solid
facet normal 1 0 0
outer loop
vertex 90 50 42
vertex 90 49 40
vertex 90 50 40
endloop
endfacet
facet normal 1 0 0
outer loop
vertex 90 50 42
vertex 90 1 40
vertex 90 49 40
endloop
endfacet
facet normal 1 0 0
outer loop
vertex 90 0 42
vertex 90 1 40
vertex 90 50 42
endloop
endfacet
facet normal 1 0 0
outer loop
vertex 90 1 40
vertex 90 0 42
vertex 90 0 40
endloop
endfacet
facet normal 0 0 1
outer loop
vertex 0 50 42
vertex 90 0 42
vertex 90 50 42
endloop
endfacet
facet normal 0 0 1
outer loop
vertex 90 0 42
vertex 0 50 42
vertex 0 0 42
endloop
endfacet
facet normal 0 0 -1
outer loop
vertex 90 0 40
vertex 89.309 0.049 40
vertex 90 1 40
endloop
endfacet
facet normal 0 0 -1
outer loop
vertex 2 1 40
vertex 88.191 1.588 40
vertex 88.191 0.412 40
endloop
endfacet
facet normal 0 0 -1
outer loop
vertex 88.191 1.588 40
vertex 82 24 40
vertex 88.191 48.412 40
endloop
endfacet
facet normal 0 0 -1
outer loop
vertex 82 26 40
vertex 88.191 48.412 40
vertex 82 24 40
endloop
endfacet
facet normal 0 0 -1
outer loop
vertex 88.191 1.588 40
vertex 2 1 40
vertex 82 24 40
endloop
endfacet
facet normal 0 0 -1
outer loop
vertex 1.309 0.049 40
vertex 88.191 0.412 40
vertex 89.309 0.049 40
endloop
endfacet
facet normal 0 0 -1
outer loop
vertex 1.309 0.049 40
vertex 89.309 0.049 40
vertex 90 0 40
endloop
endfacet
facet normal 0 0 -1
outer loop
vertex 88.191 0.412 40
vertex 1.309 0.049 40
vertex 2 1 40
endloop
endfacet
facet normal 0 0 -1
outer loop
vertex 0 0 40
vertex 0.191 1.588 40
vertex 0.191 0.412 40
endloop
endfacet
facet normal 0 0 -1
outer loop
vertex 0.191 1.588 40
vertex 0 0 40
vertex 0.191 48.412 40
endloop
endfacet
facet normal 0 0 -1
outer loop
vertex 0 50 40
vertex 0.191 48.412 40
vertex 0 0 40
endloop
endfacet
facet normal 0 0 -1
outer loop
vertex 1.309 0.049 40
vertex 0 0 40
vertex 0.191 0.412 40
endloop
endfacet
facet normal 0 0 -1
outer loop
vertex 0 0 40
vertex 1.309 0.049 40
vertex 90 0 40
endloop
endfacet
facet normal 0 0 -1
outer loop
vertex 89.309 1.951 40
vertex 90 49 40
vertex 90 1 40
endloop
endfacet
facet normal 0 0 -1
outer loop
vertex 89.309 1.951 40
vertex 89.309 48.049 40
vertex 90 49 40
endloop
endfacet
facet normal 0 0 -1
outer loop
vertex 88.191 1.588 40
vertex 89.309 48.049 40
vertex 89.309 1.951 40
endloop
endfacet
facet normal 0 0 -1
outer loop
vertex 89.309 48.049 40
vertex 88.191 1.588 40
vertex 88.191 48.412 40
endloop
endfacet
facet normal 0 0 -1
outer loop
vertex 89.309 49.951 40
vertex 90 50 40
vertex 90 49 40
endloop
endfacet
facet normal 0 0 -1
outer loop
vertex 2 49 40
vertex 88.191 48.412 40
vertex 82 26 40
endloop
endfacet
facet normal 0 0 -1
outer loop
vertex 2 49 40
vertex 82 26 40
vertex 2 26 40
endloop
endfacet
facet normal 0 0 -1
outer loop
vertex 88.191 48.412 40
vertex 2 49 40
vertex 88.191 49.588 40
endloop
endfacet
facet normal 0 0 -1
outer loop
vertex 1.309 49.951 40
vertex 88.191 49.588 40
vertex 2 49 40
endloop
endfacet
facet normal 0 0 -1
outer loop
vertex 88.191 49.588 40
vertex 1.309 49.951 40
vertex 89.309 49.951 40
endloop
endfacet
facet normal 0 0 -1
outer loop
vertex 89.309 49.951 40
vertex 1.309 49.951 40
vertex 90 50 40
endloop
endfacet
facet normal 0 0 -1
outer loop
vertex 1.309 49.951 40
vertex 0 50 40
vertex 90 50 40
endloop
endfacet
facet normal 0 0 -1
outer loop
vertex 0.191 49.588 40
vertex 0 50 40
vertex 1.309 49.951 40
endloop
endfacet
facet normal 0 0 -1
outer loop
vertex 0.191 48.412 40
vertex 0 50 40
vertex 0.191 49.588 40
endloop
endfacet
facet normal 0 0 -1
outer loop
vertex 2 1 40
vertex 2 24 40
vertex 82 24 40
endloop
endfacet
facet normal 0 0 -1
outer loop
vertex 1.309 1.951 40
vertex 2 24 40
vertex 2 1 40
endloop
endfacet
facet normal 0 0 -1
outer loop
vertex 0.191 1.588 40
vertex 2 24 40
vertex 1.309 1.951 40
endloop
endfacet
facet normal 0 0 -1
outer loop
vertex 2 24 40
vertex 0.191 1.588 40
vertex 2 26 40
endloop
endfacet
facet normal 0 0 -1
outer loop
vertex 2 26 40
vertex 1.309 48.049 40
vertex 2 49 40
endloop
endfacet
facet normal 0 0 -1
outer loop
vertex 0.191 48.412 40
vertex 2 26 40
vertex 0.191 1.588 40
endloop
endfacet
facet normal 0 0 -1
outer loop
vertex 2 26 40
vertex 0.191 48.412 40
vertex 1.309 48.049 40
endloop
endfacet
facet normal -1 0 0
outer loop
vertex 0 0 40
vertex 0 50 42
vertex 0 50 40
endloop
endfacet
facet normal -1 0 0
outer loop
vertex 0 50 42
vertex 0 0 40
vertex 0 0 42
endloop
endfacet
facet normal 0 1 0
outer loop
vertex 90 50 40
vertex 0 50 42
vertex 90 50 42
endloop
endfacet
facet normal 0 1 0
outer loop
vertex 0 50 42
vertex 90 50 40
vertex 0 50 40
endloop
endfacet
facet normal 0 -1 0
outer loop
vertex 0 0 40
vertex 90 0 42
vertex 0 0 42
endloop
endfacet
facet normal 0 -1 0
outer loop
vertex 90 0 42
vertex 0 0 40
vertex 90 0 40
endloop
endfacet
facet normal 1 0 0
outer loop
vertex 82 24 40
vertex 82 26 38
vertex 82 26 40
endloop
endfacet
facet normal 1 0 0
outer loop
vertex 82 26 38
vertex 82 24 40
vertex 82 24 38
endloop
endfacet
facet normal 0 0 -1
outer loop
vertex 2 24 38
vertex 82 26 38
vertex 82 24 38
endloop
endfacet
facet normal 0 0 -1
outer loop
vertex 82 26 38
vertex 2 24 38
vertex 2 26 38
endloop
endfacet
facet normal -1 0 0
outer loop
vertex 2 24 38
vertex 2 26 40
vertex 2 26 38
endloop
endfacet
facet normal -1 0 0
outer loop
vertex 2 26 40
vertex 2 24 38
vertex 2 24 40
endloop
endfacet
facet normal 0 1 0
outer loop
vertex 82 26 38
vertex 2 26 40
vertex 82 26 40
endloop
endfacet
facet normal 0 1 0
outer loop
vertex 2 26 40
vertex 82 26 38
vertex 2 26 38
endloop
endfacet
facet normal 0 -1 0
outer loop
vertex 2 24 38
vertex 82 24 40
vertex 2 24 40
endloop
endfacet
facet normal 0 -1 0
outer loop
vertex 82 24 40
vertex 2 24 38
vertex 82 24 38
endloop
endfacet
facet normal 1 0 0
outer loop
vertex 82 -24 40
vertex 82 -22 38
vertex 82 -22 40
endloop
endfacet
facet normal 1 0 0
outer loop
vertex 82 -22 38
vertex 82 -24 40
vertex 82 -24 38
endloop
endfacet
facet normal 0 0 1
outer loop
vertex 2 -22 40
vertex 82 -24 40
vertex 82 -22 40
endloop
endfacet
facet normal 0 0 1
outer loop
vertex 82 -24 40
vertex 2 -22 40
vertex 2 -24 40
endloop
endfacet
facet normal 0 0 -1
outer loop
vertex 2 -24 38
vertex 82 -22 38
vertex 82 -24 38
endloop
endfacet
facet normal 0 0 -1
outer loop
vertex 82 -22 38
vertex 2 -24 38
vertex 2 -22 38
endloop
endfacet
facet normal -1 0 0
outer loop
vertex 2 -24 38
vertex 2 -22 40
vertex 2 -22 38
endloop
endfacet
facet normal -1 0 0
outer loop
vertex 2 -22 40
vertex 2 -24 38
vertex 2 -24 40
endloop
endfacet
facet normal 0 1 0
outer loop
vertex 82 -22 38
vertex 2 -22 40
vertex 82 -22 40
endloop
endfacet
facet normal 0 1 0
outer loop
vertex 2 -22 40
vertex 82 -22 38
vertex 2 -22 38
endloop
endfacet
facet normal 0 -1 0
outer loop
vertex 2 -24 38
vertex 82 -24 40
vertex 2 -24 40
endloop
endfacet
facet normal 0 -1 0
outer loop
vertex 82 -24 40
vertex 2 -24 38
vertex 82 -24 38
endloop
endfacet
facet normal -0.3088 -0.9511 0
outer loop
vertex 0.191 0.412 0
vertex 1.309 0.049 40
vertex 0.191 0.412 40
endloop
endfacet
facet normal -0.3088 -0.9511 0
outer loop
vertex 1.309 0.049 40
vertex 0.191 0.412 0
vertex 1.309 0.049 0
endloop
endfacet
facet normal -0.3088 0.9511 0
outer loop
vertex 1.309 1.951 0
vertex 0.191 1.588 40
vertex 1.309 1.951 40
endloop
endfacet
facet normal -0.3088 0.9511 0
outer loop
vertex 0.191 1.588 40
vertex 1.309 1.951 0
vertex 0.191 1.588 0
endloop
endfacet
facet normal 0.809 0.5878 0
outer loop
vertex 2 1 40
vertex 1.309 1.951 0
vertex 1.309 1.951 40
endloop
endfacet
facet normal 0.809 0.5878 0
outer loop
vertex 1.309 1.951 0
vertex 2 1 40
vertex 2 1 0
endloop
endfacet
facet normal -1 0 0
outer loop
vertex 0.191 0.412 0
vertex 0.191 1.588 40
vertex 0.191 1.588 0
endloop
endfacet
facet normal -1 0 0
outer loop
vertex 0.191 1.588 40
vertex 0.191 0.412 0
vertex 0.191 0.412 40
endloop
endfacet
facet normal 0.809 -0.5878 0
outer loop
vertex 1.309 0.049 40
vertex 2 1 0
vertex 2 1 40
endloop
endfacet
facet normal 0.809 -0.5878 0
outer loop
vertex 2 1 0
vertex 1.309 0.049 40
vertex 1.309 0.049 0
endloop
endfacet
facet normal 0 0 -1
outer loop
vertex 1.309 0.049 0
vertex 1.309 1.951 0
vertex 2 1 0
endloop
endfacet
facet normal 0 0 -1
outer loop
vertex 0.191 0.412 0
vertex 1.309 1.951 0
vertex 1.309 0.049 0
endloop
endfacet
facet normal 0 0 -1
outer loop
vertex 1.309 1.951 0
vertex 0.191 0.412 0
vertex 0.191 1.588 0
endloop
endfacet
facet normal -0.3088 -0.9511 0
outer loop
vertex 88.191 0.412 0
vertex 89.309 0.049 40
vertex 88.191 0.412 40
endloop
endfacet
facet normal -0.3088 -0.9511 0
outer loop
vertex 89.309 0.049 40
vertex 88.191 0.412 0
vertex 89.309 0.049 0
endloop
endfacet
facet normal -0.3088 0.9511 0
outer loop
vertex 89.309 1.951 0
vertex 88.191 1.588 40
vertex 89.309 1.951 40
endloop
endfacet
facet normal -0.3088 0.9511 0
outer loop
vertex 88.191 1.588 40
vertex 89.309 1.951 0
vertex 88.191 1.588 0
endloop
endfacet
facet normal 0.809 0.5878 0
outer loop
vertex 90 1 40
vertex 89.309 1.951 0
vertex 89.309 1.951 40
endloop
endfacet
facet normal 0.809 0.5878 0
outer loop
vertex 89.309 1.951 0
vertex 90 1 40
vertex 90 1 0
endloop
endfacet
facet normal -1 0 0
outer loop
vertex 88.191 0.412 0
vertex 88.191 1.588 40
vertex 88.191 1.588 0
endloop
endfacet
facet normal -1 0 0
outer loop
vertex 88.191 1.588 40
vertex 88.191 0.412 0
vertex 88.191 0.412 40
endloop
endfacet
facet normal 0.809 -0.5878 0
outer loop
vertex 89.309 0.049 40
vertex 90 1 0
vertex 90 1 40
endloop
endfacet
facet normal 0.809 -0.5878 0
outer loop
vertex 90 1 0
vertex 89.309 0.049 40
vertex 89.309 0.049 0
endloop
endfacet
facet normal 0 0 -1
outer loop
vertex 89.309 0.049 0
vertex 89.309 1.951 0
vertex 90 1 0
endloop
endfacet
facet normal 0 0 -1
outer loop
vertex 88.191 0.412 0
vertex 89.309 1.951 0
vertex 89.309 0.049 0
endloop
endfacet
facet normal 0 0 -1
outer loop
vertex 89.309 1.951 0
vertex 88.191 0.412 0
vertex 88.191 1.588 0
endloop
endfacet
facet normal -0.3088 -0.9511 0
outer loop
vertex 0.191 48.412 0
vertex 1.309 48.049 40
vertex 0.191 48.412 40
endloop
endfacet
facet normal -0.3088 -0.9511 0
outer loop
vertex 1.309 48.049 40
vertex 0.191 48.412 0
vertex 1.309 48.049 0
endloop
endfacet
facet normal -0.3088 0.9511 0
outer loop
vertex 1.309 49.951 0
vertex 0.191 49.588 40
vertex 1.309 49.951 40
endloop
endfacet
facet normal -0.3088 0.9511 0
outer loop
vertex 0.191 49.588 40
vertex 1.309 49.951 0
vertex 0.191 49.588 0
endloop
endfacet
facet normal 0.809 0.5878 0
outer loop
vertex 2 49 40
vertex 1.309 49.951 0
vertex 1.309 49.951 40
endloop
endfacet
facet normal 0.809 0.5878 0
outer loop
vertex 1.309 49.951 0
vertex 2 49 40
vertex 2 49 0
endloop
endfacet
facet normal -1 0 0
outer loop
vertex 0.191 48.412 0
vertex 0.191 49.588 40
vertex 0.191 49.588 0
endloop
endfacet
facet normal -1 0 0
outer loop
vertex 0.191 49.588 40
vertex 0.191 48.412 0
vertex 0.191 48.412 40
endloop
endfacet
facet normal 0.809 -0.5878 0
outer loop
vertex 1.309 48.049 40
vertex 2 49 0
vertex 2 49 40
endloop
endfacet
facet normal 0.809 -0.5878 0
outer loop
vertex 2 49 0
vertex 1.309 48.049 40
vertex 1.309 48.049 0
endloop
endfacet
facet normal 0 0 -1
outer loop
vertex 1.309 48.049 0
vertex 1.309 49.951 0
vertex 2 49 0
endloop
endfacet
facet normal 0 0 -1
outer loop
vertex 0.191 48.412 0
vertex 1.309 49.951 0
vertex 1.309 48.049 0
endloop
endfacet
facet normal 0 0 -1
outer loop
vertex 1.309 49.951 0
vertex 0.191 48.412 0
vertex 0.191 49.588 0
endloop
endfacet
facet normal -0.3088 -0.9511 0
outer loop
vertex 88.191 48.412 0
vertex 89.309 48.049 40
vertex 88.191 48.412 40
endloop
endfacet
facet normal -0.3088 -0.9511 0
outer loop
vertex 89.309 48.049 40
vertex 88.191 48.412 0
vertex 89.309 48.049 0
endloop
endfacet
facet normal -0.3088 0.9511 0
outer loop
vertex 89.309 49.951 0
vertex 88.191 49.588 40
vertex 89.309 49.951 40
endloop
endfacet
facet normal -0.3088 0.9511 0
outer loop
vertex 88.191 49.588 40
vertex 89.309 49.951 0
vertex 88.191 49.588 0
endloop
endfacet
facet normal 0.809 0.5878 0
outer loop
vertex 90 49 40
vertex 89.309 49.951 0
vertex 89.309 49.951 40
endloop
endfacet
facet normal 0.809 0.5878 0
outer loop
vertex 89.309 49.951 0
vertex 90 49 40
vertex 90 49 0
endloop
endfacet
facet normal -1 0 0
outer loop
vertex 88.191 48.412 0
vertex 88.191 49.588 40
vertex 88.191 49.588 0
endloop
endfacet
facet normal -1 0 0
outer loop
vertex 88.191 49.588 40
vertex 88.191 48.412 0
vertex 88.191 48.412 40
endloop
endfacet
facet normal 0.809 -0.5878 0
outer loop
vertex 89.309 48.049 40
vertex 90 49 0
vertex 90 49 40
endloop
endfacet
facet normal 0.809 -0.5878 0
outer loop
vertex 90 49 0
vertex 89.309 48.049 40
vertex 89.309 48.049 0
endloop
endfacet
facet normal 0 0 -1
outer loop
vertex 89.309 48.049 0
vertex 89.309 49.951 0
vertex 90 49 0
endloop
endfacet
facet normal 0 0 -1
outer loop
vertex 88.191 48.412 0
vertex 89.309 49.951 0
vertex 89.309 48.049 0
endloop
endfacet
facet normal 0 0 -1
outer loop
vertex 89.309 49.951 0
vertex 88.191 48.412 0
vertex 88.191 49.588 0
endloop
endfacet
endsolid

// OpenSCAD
// Parameters for the table components
tabletop_length = 90; // Adjusted to better match the original model proportions
tabletop_width = 50;  // Adjusted to better match the original model proportions
tabletop_thickness = 2;

leg_diameter = 2;
leg_height = 40;

support_beam_length = tabletop_length - 10; // Adjusted to fit between the legs
support_beam_width = 2;
support_beam_height = 2;

// Tabletop
module tabletop() {
    translate([0, 0, leg_height])
        cube([tabletop_length, tabletop_width, tabletop_thickness]);
}

// Leg
module leg() {
    cylinder(h = leg_height, d = leg_diameter);
}

// Support Beam
module support_beam() {
    cube([support_beam_length, support_beam_width, support_beam_height]);
}

// Assemble the table
module table() {
    // Layer 1: Tabletop
    tabletop();

    // Layer 2: Support Beams
    translate([leg_diameter, tabletop_width / 2 - support_beam_width / 2, leg_height - support_beam_height])
        support_beam();
    translate([leg_diameter, -tabletop_width / 2 + support_beam_width / 2, leg_height - support_beam_height])
        support_beam();

    // Layer 3: Legs
    translate([leg_diameter / 2, leg_diameter / 2, 0])
        leg();
    translate([tabletop_length - leg_diameter / 2, leg_diameter / 2, 0])
        leg();
    translate([leg_diameter / 2, tabletop_width - leg_diameter / 2, 0])
        leg();
    translate([tabletop_length - leg_diameter / 2, tabletop_width - leg_diameter / 2, 0])
        leg();
}

// Render the table
table();
